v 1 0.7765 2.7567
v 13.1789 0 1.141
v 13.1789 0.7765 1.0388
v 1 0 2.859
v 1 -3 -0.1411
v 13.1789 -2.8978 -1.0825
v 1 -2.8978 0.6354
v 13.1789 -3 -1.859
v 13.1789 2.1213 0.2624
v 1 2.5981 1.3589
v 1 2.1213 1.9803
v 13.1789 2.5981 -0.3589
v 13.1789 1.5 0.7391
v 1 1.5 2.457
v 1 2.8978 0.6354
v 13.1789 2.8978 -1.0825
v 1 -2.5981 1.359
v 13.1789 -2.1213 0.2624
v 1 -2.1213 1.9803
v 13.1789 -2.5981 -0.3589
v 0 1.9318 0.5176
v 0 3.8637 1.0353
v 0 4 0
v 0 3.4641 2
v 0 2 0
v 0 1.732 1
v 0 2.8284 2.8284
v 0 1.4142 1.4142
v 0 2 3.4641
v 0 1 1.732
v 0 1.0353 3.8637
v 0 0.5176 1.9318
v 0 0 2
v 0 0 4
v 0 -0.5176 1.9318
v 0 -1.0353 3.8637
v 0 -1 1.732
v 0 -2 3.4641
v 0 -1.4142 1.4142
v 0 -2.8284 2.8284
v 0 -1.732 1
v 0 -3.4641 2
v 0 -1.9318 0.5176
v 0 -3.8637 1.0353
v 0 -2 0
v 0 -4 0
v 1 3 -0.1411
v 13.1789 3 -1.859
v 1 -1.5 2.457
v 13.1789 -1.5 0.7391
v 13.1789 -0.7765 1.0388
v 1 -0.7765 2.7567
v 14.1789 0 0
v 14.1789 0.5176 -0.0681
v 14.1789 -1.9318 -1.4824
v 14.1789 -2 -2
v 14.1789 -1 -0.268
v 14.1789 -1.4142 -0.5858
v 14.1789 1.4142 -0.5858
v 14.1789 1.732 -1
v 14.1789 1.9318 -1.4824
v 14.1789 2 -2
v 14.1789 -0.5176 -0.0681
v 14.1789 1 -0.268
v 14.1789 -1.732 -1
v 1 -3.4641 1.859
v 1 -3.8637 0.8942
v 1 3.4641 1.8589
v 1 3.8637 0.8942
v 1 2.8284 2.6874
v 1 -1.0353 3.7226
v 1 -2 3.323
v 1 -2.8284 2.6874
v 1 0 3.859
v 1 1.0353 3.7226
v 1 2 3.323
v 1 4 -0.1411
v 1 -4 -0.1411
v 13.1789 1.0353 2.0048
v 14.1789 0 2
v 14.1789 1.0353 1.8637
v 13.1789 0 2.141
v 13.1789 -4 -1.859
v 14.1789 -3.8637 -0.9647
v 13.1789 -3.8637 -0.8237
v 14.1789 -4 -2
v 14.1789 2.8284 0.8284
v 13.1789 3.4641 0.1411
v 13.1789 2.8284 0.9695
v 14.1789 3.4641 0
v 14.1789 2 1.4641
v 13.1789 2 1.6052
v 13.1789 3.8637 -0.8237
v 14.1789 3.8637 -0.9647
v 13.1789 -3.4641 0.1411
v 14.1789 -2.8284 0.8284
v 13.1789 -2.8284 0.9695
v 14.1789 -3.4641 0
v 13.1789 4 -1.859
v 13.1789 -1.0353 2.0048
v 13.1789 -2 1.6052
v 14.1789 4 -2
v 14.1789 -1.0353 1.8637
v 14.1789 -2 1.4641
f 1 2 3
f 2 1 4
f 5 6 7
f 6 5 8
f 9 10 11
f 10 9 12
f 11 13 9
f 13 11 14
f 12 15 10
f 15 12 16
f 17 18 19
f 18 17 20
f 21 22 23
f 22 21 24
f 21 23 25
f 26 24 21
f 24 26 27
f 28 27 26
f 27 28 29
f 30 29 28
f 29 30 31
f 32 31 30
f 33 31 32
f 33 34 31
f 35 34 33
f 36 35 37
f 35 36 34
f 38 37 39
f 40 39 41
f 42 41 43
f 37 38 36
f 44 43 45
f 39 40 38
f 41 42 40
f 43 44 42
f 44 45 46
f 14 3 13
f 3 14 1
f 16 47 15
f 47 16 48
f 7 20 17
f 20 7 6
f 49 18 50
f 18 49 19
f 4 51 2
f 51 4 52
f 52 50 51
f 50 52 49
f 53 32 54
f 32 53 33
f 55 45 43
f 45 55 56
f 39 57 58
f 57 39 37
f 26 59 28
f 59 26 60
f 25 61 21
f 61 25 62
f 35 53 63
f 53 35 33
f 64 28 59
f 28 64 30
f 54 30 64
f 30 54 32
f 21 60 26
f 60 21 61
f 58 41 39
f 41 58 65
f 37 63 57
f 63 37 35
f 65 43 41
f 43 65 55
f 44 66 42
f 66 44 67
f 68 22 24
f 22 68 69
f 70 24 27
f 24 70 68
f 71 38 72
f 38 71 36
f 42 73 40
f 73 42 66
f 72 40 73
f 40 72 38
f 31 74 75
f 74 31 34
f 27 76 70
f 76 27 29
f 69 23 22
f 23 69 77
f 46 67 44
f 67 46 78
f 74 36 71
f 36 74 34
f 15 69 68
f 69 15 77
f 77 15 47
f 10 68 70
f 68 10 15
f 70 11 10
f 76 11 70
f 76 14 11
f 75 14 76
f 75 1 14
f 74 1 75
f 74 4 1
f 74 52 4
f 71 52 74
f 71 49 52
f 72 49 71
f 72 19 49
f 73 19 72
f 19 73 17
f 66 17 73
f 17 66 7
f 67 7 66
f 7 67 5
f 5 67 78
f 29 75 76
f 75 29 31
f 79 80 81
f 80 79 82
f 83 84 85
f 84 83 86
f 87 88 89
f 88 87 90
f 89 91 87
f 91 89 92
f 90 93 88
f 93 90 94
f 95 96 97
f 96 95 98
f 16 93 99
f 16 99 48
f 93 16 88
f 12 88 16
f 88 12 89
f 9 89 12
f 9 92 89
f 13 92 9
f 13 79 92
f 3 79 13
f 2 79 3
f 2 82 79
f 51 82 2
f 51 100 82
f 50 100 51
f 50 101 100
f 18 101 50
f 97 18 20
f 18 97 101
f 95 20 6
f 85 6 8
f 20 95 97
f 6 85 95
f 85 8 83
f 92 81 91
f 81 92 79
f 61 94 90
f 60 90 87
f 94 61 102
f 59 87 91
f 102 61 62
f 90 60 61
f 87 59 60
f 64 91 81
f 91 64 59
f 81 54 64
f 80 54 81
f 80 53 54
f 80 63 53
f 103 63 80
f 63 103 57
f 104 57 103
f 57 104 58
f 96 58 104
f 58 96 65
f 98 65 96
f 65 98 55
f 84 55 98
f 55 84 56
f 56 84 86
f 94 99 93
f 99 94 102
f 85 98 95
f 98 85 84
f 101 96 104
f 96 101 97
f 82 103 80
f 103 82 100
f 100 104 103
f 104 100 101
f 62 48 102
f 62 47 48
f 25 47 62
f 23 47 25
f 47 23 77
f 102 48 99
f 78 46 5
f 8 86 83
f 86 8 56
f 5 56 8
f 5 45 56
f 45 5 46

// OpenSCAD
// file: ../build_environments.scad
// build_environments.scad: modules to build level sections
//

module pool(diameter=10.0, wall_height=2.0, step_width=3.0, connections=[])
{
    difference() {
        union() {
        difference() {
            cylinder(h=0.5,r1=diameter+step_width,r2=diameter+step_width,$fn=48);
            translate([0,0,-0.1])
                cylinder(h=0.7,r1=diameter,r2=diameter,$fn=48);
        }
        difference() {
            cylinder(h=wall_height,r1=diameter+step_width+1.0,r2=diameter+step_width+1.0,$fn=48);
            translate([0,0,-0.1])
                cylinder(h=wall_height+0.2,r1=diameter+step_width,r2=diameter+step_width,$fn=48);
        }
        }
    
        for (c = connections)
        {
            rotate([0,90,0]) {
                angle = atan2(c[1],c[0]);
                rotate([-angle,0,0]) {
                    cylinder(h=diameter+5.0,r1=c[2],r2=c[2],$fn=48);
                }
            }
        }
    }
}

module straight(length=10.0, width=2.0, dy1=0.0, dy2=0.0, dz=0.0)
{
    dims = [0, 0, 0, 0, 0, (dz/length)];
    matrix = [
        [ 1, dims[0], dims[1], 0 ],
        [ dims[2], 1, dims[4], 0 ],
        [ dims[5], dims[3], 1, 0 ],
        [ 0, 0, 0, 1 ]
    ];
    multmatrix(matrix)
    difference() {
        translate([dy1,0,0])
        union() {
            rotate([0,90,0]) {
                difference() {
                    cylinder(h=(length-dy1-dy2),r1=width+1.0,r2=width+1.0,$fn=24);
                    translate([0,0,-0.1])
                        cylinder(h=(length-dy1-dy2+0.2),r1=width,r2=width,$fn=24);
                }
                difference() {
                    cylinder(h=1.0,r1=width+2.0,r2=width+2.0,$fn=24);
                    translate([0,0,-0.1])
                        cylinder(h=1.2,r1=width,r2=width,$fn=24);
                }
                translate([0,0,(length-dy1-dy2)-1.0]) {
                    difference() {
                        cylinder(h=1.0,r1=width+2.0,r2=width+2.0,$fn=24);
                        translate([0,0,-0.1])
                            cylinder(h=1.2,r1=width,r2=width,$fn=24);
                    }
                }
            }
        }
        translate([0,0,-(2*width+4.0)/2])
            cube([3*length,3*length,2*width+4.0],center=true);
    }
}

module curve(p0=[0,0], center=[0,0], dir=1, angle=0.0, width=2.0)
{
    radius = sqrt((p0[0]-center[0])*(p0[0]-center[0]) + (p0[1]-center[1])*(p0[1]-center[1]));
    if (dir == 0) {
        difference() {
            rotate([0,0,-90])
            difference() {
                rotate_extrude(angle = angle, convexity = 10, $fn=32)
                    translate([radius, 0, 0])
                        circle(r = width+1.0,$fn=24);
                rotate([0,0,-1.0])
                    rotate_extrude(angle = angle+2.0, convexity = 10, $fn=32)
                        translate([radius, 0, 0])
                            circle(r = width,$fn=24);
            }
            translate([0,0,-(2*width+4.0)/2])
                cube([5*radius,5*radius,2*width+4.0],center=true);
        }
    }
    else {
        difference() {
            rotate([0,0,90])
            difference() {
                rotate_extrude(angle = -angle, convexity = 10, $fn=32)
                    translate([radius, 0, 0])
                        circle(r = width+1.0,$fn=24);
                rotate([0,0,1.0])
                    rotate_extrude(angle = -angle-2.0, convexity = 10, $fn=32)
                        translate([radius, 0, 0])
                            circle(r = width,$fn=24);
            }
            translate([0,0,-(2*width+4.0)/2])
                cube([5*radius,5*radius,2*width+4.0],center=true);
        }
    }

}

// test pool
//pool(diameter=12.0000, wall_height=3.0000, step_width=3.0000, connections=[[0.0000,-26.0000,2.0000], [23.6074,0.0000,2.0000]]);

// test straight, slope
//straight(length=26.0000, width=2.0000, dy1=11.8322, dy2=6.7082, dz=0.0000);
//straight(length=29.1549, width=12.0000, dy1=0.0000, dy2=0.0000, dz=-15.0000);

// test curve
//curve(p0=[23.6074, 0.0000], center=[23.6074, 5.0000], dir=0, angle=60.1011, width=2.0000);
//curve(p0=[33.6426, 12.4219], center=[37.9771, 9.9295], dir=1, angle=120.4627, width=2.0000);
// main file
use <../build_environments.scad>;
straight(length=14.1789, width=2.0000, dy1=0.0000, dy2=0.0000, dz=-2.0000);
